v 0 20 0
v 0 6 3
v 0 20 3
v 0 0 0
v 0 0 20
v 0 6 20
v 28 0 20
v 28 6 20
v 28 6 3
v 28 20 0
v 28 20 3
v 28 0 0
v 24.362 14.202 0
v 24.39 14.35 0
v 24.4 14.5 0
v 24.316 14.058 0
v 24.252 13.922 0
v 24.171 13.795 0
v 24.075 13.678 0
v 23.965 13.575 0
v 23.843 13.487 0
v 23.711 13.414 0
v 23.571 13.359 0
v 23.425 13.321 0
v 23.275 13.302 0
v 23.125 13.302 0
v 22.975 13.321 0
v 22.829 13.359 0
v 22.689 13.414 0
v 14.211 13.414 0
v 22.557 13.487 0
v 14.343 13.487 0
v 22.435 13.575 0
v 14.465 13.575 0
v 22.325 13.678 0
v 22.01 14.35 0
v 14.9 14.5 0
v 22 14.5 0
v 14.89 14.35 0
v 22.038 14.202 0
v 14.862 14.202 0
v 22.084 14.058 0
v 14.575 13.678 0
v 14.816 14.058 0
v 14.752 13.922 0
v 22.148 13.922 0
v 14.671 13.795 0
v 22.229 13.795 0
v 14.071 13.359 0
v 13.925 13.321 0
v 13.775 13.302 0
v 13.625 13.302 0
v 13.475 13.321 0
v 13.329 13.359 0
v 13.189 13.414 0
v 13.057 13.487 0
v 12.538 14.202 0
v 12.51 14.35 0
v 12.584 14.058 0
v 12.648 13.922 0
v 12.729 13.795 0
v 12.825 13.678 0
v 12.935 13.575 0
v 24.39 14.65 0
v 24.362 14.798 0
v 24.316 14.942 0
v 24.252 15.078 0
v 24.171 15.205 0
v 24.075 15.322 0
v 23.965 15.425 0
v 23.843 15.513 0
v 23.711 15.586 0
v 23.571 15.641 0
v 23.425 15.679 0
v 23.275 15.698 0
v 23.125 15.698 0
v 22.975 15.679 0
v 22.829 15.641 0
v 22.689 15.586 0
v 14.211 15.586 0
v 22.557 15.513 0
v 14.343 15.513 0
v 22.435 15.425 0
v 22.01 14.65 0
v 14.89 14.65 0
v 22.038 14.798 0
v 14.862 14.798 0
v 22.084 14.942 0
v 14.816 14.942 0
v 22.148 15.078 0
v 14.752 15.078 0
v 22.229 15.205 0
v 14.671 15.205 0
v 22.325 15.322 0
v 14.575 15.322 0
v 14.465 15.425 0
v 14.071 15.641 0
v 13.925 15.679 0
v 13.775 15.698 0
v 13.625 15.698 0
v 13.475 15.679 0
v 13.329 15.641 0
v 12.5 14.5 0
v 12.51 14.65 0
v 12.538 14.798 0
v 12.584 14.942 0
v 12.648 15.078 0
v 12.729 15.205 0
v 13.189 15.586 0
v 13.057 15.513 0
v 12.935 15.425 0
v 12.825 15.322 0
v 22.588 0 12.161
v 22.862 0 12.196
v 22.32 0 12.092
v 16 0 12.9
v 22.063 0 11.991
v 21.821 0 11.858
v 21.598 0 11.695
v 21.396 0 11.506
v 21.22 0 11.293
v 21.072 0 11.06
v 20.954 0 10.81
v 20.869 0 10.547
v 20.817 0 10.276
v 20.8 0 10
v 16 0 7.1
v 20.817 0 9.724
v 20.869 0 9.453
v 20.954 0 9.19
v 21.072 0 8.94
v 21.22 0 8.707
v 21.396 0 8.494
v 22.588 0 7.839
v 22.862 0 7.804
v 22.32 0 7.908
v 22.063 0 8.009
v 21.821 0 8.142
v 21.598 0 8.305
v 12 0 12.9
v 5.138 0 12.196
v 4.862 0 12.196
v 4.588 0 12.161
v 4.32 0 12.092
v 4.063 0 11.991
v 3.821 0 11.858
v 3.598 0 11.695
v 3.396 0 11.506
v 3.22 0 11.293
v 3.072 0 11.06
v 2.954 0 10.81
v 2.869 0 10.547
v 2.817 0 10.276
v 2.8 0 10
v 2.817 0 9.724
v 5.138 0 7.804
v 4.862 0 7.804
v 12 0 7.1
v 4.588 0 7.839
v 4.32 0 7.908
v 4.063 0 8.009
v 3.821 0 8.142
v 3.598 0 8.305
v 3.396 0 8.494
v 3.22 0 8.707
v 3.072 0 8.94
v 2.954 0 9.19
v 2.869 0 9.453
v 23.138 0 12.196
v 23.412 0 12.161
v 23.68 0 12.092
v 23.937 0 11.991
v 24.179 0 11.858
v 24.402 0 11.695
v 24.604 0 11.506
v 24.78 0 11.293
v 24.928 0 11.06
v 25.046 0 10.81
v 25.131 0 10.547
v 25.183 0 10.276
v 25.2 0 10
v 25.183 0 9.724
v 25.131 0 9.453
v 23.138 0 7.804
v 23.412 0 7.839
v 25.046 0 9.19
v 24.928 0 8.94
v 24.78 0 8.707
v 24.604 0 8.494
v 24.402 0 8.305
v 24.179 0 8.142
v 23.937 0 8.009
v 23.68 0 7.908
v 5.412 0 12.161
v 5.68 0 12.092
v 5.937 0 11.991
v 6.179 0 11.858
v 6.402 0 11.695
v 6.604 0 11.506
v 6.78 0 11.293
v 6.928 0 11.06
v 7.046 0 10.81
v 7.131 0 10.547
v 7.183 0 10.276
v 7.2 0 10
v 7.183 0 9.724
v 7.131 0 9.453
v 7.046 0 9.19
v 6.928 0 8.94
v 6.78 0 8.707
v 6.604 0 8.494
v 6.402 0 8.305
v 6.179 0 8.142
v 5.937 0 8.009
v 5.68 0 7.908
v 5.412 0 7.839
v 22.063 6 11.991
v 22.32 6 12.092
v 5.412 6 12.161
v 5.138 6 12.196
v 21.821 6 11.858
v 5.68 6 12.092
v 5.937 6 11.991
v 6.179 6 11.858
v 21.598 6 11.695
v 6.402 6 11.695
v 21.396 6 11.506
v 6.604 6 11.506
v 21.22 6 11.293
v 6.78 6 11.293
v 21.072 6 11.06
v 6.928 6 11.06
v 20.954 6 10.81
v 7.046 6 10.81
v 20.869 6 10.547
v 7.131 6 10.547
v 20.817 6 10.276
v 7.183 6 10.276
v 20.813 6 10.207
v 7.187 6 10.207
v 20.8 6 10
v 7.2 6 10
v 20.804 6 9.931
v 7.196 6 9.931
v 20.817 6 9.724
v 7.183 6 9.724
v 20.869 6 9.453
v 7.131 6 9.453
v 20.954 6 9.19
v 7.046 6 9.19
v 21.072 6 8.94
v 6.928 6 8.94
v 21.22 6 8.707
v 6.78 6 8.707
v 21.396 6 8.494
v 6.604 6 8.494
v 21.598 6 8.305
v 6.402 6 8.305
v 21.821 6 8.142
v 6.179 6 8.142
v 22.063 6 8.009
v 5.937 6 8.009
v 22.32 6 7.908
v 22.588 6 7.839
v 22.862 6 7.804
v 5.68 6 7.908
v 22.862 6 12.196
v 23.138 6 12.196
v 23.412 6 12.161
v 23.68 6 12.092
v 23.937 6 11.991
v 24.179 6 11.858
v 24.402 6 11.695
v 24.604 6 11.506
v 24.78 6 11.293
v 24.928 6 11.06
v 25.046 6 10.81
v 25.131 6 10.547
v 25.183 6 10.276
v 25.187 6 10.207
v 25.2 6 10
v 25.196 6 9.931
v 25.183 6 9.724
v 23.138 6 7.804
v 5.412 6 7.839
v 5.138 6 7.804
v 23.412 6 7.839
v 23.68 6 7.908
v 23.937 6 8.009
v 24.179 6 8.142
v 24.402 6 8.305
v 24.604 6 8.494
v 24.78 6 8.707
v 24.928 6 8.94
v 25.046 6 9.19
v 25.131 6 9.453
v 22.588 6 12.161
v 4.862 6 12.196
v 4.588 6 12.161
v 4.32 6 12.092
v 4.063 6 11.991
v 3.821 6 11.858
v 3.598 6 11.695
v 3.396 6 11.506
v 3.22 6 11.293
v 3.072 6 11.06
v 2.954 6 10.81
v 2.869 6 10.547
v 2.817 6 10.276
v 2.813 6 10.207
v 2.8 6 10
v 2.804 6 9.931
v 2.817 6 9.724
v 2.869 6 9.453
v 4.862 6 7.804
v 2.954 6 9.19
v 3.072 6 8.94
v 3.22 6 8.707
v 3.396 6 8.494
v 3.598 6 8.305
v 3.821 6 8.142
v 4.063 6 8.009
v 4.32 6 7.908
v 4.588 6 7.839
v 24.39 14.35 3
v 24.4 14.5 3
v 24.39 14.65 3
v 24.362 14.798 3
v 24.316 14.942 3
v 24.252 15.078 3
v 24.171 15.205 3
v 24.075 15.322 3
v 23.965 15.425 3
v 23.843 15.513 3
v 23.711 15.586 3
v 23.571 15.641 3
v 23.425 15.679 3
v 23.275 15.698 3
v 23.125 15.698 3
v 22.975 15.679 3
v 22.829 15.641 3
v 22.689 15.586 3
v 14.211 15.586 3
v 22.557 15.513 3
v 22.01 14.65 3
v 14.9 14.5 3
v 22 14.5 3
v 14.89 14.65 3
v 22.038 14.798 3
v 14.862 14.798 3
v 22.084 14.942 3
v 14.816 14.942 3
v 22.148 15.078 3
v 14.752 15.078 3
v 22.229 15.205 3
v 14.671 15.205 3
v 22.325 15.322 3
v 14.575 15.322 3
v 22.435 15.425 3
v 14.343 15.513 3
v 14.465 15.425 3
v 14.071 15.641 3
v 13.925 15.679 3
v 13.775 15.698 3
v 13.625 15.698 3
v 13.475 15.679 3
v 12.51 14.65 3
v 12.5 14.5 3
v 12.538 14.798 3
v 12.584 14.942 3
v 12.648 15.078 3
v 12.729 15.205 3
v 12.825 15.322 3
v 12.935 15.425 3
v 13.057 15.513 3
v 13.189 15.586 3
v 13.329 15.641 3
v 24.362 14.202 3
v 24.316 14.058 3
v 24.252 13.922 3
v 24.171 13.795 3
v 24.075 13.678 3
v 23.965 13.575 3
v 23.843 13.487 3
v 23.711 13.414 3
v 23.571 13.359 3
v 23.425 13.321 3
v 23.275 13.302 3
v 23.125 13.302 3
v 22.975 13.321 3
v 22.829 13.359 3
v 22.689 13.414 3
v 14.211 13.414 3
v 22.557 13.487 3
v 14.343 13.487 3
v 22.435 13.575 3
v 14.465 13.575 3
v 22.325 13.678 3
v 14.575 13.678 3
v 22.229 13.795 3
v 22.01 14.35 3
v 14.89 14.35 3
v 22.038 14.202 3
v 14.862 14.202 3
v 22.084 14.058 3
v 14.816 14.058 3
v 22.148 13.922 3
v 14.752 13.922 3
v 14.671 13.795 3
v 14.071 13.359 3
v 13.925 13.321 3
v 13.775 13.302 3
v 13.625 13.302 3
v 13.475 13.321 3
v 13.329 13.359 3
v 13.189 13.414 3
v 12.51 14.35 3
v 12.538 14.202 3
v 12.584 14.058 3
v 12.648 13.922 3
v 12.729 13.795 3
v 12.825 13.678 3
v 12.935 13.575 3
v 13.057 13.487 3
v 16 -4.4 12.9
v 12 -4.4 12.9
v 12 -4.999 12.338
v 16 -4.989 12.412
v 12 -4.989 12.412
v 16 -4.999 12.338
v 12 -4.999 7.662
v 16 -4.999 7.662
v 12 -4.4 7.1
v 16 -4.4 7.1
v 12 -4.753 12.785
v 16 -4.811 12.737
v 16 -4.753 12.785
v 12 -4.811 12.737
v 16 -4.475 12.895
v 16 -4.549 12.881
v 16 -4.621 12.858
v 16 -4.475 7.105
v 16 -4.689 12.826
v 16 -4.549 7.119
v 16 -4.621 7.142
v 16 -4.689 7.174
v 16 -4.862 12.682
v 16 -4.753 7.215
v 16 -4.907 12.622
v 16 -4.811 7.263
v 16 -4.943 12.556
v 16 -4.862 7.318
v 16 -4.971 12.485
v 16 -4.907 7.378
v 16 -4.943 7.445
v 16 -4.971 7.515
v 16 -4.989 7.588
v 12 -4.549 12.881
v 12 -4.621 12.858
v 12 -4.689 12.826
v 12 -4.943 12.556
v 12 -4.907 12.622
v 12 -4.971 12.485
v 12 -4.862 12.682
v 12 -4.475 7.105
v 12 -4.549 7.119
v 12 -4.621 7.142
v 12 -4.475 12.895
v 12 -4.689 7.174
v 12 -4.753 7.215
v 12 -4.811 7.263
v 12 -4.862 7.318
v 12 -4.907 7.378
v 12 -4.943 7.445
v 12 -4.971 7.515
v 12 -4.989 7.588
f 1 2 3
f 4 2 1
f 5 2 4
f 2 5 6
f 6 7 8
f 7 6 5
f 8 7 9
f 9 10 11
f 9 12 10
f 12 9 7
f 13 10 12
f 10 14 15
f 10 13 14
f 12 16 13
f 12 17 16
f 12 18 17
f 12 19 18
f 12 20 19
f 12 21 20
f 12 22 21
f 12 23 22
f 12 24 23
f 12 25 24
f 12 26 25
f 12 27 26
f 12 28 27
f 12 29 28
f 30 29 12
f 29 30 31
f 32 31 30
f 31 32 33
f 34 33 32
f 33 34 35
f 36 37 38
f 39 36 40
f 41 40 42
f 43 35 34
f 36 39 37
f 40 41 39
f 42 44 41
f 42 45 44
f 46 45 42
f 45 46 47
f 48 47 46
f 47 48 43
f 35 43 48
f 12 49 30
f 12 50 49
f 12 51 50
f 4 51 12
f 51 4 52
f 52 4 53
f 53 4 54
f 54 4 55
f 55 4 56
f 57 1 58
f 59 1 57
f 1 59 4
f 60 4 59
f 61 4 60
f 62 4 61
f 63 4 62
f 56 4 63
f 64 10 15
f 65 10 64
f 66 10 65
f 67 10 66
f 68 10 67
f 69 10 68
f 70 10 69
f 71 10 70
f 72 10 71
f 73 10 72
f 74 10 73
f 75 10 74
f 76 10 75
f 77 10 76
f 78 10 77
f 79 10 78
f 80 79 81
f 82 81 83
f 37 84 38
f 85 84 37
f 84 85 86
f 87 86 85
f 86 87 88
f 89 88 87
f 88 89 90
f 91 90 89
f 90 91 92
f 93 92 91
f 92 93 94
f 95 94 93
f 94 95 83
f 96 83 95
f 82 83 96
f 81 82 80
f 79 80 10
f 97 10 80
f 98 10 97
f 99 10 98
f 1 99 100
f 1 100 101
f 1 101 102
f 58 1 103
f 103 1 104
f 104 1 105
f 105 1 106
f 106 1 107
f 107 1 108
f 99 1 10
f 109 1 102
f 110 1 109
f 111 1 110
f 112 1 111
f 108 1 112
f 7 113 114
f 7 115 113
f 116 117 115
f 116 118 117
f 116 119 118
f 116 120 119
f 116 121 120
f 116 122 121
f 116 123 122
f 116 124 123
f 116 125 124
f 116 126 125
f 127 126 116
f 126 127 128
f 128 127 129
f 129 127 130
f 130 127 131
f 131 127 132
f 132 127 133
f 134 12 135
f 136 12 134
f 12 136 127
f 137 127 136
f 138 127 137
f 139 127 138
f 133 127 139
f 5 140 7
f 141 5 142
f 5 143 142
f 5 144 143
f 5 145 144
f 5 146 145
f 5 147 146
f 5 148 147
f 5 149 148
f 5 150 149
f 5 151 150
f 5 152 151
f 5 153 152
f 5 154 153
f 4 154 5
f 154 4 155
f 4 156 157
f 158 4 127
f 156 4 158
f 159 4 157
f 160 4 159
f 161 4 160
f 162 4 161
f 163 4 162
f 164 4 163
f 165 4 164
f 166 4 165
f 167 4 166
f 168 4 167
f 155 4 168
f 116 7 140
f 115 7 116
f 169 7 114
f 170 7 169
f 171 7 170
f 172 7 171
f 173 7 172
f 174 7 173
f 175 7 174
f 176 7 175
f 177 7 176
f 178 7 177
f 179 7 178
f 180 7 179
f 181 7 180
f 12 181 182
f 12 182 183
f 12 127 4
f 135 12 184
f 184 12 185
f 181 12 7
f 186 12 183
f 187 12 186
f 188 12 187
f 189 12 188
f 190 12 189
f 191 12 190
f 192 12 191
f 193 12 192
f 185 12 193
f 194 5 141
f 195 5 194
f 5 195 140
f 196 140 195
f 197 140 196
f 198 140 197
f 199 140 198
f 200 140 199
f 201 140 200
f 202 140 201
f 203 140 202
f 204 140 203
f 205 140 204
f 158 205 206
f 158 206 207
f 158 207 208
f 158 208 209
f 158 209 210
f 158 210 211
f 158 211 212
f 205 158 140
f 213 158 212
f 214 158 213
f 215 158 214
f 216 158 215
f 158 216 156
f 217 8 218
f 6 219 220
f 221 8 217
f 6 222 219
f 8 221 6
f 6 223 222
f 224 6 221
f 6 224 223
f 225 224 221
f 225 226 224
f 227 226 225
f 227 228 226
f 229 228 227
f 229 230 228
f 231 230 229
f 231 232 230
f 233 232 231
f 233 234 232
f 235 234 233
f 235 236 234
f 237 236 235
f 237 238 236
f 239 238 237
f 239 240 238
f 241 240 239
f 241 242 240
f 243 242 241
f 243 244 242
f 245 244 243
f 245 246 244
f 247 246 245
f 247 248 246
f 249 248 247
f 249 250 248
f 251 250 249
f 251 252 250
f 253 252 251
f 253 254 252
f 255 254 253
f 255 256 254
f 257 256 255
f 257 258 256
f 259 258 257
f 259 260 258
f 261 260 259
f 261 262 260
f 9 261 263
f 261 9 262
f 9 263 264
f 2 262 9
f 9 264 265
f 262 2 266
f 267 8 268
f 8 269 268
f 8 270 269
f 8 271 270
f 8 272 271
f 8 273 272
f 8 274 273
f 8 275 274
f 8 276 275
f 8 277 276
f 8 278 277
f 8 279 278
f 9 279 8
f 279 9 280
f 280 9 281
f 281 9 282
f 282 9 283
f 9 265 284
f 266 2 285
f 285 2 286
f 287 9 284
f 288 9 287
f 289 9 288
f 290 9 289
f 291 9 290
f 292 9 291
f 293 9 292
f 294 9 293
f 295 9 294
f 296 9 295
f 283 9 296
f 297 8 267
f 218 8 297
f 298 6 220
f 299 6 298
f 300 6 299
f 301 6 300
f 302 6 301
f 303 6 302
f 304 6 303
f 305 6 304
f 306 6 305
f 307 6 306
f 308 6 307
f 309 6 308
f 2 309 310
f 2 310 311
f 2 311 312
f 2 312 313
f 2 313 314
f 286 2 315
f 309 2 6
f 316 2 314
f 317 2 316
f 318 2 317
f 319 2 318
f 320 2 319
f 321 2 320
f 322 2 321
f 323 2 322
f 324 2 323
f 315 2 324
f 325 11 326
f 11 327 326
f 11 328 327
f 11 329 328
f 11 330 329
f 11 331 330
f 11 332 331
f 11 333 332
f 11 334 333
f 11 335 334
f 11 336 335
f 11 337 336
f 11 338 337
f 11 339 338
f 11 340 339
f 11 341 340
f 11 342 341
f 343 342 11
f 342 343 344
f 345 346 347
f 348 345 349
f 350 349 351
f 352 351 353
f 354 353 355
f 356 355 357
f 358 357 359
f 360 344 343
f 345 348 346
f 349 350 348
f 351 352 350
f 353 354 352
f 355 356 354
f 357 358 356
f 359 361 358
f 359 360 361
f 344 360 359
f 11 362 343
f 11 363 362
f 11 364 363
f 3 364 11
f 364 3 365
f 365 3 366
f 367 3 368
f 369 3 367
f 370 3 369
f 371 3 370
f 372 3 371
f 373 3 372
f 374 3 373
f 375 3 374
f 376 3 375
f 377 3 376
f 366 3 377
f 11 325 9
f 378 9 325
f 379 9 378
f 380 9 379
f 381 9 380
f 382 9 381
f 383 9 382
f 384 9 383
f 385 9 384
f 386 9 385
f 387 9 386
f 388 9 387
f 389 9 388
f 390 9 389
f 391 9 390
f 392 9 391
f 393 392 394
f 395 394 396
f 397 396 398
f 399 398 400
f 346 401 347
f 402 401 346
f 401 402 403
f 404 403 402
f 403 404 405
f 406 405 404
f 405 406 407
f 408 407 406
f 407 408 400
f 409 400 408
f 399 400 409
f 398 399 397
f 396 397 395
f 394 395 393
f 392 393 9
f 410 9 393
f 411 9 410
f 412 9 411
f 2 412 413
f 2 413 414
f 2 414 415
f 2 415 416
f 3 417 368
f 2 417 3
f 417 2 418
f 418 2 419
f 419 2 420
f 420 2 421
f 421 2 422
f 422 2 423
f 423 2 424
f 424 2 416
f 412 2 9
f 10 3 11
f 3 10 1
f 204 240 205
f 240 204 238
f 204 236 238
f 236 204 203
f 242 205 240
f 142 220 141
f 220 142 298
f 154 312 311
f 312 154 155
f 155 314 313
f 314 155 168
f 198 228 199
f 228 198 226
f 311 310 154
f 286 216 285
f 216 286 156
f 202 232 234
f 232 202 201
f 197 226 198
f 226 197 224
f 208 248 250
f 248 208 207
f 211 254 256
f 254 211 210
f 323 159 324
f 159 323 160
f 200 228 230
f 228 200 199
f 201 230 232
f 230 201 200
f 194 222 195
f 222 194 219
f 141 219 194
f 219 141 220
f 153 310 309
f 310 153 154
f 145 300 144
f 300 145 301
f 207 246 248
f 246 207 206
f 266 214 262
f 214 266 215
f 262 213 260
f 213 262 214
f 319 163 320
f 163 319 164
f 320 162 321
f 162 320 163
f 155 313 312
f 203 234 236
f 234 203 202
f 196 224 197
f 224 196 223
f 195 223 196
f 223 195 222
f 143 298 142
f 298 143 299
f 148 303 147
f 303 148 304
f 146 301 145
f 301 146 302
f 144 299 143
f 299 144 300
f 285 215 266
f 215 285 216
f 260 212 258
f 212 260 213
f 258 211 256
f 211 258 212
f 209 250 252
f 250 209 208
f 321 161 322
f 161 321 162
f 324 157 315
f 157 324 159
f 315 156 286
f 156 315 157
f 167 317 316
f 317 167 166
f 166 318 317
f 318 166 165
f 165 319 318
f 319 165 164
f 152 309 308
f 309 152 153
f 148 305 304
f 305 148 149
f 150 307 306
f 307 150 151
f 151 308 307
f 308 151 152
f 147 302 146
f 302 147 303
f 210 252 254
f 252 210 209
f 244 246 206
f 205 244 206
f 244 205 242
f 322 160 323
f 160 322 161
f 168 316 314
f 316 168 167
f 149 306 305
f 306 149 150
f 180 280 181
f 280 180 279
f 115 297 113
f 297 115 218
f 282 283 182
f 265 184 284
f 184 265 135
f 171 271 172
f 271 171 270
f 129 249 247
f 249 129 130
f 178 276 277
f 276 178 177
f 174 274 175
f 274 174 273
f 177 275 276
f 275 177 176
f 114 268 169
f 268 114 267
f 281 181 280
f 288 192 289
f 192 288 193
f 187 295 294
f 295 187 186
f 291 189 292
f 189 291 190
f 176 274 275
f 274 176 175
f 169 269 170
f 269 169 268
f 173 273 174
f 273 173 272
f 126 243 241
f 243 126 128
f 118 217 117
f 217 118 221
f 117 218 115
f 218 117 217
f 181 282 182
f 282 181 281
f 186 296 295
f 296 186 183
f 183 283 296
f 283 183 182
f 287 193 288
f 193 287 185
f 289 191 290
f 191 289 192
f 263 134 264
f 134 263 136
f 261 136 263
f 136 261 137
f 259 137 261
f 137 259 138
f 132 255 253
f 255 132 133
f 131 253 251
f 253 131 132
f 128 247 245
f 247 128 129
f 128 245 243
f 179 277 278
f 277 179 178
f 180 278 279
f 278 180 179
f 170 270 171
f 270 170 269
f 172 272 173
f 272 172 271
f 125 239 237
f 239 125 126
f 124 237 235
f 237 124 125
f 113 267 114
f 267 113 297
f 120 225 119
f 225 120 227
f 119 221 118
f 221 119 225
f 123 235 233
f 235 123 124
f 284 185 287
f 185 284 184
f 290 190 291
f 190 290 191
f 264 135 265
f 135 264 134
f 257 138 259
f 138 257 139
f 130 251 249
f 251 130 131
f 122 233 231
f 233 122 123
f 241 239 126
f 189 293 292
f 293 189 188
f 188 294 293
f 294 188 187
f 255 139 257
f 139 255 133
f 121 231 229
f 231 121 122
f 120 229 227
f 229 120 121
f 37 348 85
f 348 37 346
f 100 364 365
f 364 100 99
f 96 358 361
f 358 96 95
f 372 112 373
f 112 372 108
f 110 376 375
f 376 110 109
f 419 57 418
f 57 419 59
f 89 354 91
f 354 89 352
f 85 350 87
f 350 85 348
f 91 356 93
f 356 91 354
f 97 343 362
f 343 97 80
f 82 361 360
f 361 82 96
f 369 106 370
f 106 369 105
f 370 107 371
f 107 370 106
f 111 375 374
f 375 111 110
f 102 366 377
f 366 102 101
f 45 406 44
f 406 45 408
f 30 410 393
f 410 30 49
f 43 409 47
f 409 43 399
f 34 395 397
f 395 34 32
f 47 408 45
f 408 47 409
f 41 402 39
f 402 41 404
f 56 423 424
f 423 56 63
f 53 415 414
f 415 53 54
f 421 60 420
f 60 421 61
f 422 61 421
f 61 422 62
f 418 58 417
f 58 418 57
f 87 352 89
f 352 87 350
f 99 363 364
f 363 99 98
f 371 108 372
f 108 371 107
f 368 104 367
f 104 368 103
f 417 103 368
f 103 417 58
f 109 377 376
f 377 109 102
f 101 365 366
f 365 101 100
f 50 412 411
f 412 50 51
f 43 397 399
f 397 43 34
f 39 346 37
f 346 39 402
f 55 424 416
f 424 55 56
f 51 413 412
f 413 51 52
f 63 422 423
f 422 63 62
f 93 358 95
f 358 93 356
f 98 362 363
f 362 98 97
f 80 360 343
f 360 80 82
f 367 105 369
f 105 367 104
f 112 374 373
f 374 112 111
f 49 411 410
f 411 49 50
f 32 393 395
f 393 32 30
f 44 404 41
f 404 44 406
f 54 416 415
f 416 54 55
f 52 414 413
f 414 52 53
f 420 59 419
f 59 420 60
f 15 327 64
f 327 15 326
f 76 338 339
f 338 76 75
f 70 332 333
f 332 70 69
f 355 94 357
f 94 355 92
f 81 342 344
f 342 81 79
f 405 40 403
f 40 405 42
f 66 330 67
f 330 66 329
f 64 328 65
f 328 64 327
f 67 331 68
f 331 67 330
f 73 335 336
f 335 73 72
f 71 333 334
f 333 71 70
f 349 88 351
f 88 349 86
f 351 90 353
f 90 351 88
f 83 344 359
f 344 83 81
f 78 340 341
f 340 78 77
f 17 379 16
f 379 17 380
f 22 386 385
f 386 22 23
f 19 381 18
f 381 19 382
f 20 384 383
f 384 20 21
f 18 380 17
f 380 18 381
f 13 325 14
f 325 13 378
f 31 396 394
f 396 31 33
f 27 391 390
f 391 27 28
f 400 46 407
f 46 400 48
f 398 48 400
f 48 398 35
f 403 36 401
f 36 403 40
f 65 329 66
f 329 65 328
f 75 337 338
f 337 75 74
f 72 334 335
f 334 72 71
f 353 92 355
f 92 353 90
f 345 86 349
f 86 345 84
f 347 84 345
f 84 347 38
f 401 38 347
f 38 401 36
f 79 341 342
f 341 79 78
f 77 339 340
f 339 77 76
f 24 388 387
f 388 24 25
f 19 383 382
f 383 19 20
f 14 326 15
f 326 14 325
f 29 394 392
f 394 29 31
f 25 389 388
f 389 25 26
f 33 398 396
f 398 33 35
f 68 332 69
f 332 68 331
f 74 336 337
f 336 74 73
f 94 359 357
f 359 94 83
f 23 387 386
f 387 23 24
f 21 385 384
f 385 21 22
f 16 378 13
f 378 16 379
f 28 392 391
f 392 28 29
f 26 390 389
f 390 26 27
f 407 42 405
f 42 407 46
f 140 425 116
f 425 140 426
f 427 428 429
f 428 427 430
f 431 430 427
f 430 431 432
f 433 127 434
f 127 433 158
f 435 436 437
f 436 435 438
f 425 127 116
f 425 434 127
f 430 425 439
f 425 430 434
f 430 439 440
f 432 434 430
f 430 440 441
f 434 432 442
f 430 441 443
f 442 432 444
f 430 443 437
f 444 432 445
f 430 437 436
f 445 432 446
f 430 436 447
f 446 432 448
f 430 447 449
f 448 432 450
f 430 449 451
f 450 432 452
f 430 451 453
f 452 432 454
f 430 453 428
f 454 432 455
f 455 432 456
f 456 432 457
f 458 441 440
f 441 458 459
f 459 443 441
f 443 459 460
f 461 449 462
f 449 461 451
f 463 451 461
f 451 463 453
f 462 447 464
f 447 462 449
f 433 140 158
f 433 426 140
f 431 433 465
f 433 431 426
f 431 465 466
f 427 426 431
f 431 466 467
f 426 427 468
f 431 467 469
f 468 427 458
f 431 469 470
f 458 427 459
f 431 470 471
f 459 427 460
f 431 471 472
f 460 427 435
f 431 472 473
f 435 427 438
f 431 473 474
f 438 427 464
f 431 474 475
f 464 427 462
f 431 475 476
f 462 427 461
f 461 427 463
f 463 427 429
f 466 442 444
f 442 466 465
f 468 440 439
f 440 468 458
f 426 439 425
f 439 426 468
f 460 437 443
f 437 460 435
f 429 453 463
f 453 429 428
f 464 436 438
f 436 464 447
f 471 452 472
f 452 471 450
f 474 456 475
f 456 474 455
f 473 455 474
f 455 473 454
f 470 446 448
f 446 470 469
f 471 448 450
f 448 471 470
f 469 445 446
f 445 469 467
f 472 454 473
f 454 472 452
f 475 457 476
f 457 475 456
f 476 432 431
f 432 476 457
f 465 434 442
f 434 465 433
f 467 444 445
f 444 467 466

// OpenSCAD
// file: ../lib/nutsnbolts/data-access.scad
// Norm Nuts and Bolts - a OpenSCAD library
// Copyright (C) 2012  Johannes Kneer

// This program is free software: you can redistribute it and/or modify
// it under the terms of the GNU General Public License as published by
// the Free Software Foundation, either version 3 of the License, or
// (at your option) any later version.

// This program is distributed in the hope that it will be useful,
// but WITHOUT ANY WARRANTY; without even the implied warranty of
// MERCHANTABILITY or FITNESS FOR A PARTICULAR PURPOSE.  See the
// GNU General Public License for more details.

// You should have received a copy of the GNU General Public License
// along with this program.  If not, see <http://www.gnu.org/licenses/>.


// DATABASE ACCESS FUNCTIONS AND CONSTANTS



// == CONSTANTS ==

// screw table access keys
_NB_S_DESC            = 0;
_NB_S_FAMKEY			    = 1;
_NB_S_LENGTH          = 2;
_NB_S_NOTHREAD_LENGTH = 3;

_NB_F_DESC			      = 0;
_NB_F_OUTER_DIA       = 1;
_NB_F_INNER_DIA       = 2;
_NB_F_LEAD            = 3;
_NB_F_KEY             = 4;
_NB_F_KEY_DEPTH       = 5;
_NB_F_HEAD_HEIGHT     = 6;
_NB_F_HEAD_DIA        = 7;
_NB_F_NUT_KEY         = 8;
_NB_F_NUT_HEIGHT      = 9;
_NB_F_PITCH_FINE      = 10;
_NB_F_PITCH_MEDIUM    = 11;
_NB_F_PITCH_COARSE    = 12;


// == FUNCTIONS ==

// _get_screw("descriptor")   with descriptor = M8x25
//   find the line for a general object in the data matrix

function _get_screw(n) = data_screw[search([n], data_screw)[0]];
function _get_screw_fam(n) = data_screw_fam[search([_get_screw(n)[_NB_S_FAMKEY]], data_screw_fam)[0]];

function _get_fam(n) = data_screw_fam[search([n], data_screw_fam)[0]];


// _get_XXXXX("descriptor") functions
// find a single property in the database

function _get_desc(n)        = _get_screw(n)[_NB_S_DESC];
function _get_famkey(n)         = _get_screw(n)[_NB_S_FAMKEY];
function _get_length(n)      = _get_screw(n)[_NB_S_LENGTH];
function _get_nt_length(n)   = _get_screw(n)[_NB_S_NOTHREAD_LENGTH];

function _get_outer_dia(n)   = _get_screw_fam(n)[_NB_F_OUTER_DIA];
function _get_inner_dia(n)   = _get_screw_fam(n)[_NB_F_INNER_DIA];
function _get_lead(n)        = _get_screw_fam(n)[_NB_F_LEAD];
function _get_head_height(n) = _get_screw_fam(n)[_NB_F_HEAD_HEIGHT];
function _get_head_dia(n)    = _get_screw_fam(n)[_NB_F_HEAD_DIA];
function _get_nut_key(n)     = _get_screw_fam(n)[_NB_F_NUT_KEY];
function _get_nut_height(n)  = _get_screw_fam(n)[_NB_F_NUT_HEIGHT];
function _get_fine_pitch(n)  = _get_screw_fam(n)[_NB_F_PITCH_FINE];
function _get_medium_pitch(n)  = _get_screw_fam(n)[_NB_F_PITCH_MEDIUM];
function _get_coarse_pitch(n)  = _get_screw_fam(n)[_NB_F_PITCH_COARSE];
// file: ../globals.scad
// Global variables

$fn = 50;
clearance = 0.4; // Nozzle width
// main file
include <../globals.scad>
include <../lib/nutsnbolts/cyl_head_bolt.scad>;

module x_end_stop()
{
    difference(){
        union(){
            cube([28,6,20]);
            cube([28,20,3]);
        }
        translate([5,0,10])rotate([90,0,0])hole_through("M4",l=8, cld=clearance);
        translate([23,0,10])rotate([90,0,0])hole_through("M4",l=8, cld=clearance);
        translate([13.7,14.5,10])hole_through("M2",l=12, cld=clearance);
        translate([13.7+9.5,14.5,10])hole_through("M2",l=12, cld=clearance);
    }
    
    translate([16,-5,7.1])rotate([0,-90,0])translate([0.6,0.6,0])minkowski(){
        cube([4.6,4.4,3]);
        cylinder(d=1.2,h=1);
    }
}

x_end_stop();
